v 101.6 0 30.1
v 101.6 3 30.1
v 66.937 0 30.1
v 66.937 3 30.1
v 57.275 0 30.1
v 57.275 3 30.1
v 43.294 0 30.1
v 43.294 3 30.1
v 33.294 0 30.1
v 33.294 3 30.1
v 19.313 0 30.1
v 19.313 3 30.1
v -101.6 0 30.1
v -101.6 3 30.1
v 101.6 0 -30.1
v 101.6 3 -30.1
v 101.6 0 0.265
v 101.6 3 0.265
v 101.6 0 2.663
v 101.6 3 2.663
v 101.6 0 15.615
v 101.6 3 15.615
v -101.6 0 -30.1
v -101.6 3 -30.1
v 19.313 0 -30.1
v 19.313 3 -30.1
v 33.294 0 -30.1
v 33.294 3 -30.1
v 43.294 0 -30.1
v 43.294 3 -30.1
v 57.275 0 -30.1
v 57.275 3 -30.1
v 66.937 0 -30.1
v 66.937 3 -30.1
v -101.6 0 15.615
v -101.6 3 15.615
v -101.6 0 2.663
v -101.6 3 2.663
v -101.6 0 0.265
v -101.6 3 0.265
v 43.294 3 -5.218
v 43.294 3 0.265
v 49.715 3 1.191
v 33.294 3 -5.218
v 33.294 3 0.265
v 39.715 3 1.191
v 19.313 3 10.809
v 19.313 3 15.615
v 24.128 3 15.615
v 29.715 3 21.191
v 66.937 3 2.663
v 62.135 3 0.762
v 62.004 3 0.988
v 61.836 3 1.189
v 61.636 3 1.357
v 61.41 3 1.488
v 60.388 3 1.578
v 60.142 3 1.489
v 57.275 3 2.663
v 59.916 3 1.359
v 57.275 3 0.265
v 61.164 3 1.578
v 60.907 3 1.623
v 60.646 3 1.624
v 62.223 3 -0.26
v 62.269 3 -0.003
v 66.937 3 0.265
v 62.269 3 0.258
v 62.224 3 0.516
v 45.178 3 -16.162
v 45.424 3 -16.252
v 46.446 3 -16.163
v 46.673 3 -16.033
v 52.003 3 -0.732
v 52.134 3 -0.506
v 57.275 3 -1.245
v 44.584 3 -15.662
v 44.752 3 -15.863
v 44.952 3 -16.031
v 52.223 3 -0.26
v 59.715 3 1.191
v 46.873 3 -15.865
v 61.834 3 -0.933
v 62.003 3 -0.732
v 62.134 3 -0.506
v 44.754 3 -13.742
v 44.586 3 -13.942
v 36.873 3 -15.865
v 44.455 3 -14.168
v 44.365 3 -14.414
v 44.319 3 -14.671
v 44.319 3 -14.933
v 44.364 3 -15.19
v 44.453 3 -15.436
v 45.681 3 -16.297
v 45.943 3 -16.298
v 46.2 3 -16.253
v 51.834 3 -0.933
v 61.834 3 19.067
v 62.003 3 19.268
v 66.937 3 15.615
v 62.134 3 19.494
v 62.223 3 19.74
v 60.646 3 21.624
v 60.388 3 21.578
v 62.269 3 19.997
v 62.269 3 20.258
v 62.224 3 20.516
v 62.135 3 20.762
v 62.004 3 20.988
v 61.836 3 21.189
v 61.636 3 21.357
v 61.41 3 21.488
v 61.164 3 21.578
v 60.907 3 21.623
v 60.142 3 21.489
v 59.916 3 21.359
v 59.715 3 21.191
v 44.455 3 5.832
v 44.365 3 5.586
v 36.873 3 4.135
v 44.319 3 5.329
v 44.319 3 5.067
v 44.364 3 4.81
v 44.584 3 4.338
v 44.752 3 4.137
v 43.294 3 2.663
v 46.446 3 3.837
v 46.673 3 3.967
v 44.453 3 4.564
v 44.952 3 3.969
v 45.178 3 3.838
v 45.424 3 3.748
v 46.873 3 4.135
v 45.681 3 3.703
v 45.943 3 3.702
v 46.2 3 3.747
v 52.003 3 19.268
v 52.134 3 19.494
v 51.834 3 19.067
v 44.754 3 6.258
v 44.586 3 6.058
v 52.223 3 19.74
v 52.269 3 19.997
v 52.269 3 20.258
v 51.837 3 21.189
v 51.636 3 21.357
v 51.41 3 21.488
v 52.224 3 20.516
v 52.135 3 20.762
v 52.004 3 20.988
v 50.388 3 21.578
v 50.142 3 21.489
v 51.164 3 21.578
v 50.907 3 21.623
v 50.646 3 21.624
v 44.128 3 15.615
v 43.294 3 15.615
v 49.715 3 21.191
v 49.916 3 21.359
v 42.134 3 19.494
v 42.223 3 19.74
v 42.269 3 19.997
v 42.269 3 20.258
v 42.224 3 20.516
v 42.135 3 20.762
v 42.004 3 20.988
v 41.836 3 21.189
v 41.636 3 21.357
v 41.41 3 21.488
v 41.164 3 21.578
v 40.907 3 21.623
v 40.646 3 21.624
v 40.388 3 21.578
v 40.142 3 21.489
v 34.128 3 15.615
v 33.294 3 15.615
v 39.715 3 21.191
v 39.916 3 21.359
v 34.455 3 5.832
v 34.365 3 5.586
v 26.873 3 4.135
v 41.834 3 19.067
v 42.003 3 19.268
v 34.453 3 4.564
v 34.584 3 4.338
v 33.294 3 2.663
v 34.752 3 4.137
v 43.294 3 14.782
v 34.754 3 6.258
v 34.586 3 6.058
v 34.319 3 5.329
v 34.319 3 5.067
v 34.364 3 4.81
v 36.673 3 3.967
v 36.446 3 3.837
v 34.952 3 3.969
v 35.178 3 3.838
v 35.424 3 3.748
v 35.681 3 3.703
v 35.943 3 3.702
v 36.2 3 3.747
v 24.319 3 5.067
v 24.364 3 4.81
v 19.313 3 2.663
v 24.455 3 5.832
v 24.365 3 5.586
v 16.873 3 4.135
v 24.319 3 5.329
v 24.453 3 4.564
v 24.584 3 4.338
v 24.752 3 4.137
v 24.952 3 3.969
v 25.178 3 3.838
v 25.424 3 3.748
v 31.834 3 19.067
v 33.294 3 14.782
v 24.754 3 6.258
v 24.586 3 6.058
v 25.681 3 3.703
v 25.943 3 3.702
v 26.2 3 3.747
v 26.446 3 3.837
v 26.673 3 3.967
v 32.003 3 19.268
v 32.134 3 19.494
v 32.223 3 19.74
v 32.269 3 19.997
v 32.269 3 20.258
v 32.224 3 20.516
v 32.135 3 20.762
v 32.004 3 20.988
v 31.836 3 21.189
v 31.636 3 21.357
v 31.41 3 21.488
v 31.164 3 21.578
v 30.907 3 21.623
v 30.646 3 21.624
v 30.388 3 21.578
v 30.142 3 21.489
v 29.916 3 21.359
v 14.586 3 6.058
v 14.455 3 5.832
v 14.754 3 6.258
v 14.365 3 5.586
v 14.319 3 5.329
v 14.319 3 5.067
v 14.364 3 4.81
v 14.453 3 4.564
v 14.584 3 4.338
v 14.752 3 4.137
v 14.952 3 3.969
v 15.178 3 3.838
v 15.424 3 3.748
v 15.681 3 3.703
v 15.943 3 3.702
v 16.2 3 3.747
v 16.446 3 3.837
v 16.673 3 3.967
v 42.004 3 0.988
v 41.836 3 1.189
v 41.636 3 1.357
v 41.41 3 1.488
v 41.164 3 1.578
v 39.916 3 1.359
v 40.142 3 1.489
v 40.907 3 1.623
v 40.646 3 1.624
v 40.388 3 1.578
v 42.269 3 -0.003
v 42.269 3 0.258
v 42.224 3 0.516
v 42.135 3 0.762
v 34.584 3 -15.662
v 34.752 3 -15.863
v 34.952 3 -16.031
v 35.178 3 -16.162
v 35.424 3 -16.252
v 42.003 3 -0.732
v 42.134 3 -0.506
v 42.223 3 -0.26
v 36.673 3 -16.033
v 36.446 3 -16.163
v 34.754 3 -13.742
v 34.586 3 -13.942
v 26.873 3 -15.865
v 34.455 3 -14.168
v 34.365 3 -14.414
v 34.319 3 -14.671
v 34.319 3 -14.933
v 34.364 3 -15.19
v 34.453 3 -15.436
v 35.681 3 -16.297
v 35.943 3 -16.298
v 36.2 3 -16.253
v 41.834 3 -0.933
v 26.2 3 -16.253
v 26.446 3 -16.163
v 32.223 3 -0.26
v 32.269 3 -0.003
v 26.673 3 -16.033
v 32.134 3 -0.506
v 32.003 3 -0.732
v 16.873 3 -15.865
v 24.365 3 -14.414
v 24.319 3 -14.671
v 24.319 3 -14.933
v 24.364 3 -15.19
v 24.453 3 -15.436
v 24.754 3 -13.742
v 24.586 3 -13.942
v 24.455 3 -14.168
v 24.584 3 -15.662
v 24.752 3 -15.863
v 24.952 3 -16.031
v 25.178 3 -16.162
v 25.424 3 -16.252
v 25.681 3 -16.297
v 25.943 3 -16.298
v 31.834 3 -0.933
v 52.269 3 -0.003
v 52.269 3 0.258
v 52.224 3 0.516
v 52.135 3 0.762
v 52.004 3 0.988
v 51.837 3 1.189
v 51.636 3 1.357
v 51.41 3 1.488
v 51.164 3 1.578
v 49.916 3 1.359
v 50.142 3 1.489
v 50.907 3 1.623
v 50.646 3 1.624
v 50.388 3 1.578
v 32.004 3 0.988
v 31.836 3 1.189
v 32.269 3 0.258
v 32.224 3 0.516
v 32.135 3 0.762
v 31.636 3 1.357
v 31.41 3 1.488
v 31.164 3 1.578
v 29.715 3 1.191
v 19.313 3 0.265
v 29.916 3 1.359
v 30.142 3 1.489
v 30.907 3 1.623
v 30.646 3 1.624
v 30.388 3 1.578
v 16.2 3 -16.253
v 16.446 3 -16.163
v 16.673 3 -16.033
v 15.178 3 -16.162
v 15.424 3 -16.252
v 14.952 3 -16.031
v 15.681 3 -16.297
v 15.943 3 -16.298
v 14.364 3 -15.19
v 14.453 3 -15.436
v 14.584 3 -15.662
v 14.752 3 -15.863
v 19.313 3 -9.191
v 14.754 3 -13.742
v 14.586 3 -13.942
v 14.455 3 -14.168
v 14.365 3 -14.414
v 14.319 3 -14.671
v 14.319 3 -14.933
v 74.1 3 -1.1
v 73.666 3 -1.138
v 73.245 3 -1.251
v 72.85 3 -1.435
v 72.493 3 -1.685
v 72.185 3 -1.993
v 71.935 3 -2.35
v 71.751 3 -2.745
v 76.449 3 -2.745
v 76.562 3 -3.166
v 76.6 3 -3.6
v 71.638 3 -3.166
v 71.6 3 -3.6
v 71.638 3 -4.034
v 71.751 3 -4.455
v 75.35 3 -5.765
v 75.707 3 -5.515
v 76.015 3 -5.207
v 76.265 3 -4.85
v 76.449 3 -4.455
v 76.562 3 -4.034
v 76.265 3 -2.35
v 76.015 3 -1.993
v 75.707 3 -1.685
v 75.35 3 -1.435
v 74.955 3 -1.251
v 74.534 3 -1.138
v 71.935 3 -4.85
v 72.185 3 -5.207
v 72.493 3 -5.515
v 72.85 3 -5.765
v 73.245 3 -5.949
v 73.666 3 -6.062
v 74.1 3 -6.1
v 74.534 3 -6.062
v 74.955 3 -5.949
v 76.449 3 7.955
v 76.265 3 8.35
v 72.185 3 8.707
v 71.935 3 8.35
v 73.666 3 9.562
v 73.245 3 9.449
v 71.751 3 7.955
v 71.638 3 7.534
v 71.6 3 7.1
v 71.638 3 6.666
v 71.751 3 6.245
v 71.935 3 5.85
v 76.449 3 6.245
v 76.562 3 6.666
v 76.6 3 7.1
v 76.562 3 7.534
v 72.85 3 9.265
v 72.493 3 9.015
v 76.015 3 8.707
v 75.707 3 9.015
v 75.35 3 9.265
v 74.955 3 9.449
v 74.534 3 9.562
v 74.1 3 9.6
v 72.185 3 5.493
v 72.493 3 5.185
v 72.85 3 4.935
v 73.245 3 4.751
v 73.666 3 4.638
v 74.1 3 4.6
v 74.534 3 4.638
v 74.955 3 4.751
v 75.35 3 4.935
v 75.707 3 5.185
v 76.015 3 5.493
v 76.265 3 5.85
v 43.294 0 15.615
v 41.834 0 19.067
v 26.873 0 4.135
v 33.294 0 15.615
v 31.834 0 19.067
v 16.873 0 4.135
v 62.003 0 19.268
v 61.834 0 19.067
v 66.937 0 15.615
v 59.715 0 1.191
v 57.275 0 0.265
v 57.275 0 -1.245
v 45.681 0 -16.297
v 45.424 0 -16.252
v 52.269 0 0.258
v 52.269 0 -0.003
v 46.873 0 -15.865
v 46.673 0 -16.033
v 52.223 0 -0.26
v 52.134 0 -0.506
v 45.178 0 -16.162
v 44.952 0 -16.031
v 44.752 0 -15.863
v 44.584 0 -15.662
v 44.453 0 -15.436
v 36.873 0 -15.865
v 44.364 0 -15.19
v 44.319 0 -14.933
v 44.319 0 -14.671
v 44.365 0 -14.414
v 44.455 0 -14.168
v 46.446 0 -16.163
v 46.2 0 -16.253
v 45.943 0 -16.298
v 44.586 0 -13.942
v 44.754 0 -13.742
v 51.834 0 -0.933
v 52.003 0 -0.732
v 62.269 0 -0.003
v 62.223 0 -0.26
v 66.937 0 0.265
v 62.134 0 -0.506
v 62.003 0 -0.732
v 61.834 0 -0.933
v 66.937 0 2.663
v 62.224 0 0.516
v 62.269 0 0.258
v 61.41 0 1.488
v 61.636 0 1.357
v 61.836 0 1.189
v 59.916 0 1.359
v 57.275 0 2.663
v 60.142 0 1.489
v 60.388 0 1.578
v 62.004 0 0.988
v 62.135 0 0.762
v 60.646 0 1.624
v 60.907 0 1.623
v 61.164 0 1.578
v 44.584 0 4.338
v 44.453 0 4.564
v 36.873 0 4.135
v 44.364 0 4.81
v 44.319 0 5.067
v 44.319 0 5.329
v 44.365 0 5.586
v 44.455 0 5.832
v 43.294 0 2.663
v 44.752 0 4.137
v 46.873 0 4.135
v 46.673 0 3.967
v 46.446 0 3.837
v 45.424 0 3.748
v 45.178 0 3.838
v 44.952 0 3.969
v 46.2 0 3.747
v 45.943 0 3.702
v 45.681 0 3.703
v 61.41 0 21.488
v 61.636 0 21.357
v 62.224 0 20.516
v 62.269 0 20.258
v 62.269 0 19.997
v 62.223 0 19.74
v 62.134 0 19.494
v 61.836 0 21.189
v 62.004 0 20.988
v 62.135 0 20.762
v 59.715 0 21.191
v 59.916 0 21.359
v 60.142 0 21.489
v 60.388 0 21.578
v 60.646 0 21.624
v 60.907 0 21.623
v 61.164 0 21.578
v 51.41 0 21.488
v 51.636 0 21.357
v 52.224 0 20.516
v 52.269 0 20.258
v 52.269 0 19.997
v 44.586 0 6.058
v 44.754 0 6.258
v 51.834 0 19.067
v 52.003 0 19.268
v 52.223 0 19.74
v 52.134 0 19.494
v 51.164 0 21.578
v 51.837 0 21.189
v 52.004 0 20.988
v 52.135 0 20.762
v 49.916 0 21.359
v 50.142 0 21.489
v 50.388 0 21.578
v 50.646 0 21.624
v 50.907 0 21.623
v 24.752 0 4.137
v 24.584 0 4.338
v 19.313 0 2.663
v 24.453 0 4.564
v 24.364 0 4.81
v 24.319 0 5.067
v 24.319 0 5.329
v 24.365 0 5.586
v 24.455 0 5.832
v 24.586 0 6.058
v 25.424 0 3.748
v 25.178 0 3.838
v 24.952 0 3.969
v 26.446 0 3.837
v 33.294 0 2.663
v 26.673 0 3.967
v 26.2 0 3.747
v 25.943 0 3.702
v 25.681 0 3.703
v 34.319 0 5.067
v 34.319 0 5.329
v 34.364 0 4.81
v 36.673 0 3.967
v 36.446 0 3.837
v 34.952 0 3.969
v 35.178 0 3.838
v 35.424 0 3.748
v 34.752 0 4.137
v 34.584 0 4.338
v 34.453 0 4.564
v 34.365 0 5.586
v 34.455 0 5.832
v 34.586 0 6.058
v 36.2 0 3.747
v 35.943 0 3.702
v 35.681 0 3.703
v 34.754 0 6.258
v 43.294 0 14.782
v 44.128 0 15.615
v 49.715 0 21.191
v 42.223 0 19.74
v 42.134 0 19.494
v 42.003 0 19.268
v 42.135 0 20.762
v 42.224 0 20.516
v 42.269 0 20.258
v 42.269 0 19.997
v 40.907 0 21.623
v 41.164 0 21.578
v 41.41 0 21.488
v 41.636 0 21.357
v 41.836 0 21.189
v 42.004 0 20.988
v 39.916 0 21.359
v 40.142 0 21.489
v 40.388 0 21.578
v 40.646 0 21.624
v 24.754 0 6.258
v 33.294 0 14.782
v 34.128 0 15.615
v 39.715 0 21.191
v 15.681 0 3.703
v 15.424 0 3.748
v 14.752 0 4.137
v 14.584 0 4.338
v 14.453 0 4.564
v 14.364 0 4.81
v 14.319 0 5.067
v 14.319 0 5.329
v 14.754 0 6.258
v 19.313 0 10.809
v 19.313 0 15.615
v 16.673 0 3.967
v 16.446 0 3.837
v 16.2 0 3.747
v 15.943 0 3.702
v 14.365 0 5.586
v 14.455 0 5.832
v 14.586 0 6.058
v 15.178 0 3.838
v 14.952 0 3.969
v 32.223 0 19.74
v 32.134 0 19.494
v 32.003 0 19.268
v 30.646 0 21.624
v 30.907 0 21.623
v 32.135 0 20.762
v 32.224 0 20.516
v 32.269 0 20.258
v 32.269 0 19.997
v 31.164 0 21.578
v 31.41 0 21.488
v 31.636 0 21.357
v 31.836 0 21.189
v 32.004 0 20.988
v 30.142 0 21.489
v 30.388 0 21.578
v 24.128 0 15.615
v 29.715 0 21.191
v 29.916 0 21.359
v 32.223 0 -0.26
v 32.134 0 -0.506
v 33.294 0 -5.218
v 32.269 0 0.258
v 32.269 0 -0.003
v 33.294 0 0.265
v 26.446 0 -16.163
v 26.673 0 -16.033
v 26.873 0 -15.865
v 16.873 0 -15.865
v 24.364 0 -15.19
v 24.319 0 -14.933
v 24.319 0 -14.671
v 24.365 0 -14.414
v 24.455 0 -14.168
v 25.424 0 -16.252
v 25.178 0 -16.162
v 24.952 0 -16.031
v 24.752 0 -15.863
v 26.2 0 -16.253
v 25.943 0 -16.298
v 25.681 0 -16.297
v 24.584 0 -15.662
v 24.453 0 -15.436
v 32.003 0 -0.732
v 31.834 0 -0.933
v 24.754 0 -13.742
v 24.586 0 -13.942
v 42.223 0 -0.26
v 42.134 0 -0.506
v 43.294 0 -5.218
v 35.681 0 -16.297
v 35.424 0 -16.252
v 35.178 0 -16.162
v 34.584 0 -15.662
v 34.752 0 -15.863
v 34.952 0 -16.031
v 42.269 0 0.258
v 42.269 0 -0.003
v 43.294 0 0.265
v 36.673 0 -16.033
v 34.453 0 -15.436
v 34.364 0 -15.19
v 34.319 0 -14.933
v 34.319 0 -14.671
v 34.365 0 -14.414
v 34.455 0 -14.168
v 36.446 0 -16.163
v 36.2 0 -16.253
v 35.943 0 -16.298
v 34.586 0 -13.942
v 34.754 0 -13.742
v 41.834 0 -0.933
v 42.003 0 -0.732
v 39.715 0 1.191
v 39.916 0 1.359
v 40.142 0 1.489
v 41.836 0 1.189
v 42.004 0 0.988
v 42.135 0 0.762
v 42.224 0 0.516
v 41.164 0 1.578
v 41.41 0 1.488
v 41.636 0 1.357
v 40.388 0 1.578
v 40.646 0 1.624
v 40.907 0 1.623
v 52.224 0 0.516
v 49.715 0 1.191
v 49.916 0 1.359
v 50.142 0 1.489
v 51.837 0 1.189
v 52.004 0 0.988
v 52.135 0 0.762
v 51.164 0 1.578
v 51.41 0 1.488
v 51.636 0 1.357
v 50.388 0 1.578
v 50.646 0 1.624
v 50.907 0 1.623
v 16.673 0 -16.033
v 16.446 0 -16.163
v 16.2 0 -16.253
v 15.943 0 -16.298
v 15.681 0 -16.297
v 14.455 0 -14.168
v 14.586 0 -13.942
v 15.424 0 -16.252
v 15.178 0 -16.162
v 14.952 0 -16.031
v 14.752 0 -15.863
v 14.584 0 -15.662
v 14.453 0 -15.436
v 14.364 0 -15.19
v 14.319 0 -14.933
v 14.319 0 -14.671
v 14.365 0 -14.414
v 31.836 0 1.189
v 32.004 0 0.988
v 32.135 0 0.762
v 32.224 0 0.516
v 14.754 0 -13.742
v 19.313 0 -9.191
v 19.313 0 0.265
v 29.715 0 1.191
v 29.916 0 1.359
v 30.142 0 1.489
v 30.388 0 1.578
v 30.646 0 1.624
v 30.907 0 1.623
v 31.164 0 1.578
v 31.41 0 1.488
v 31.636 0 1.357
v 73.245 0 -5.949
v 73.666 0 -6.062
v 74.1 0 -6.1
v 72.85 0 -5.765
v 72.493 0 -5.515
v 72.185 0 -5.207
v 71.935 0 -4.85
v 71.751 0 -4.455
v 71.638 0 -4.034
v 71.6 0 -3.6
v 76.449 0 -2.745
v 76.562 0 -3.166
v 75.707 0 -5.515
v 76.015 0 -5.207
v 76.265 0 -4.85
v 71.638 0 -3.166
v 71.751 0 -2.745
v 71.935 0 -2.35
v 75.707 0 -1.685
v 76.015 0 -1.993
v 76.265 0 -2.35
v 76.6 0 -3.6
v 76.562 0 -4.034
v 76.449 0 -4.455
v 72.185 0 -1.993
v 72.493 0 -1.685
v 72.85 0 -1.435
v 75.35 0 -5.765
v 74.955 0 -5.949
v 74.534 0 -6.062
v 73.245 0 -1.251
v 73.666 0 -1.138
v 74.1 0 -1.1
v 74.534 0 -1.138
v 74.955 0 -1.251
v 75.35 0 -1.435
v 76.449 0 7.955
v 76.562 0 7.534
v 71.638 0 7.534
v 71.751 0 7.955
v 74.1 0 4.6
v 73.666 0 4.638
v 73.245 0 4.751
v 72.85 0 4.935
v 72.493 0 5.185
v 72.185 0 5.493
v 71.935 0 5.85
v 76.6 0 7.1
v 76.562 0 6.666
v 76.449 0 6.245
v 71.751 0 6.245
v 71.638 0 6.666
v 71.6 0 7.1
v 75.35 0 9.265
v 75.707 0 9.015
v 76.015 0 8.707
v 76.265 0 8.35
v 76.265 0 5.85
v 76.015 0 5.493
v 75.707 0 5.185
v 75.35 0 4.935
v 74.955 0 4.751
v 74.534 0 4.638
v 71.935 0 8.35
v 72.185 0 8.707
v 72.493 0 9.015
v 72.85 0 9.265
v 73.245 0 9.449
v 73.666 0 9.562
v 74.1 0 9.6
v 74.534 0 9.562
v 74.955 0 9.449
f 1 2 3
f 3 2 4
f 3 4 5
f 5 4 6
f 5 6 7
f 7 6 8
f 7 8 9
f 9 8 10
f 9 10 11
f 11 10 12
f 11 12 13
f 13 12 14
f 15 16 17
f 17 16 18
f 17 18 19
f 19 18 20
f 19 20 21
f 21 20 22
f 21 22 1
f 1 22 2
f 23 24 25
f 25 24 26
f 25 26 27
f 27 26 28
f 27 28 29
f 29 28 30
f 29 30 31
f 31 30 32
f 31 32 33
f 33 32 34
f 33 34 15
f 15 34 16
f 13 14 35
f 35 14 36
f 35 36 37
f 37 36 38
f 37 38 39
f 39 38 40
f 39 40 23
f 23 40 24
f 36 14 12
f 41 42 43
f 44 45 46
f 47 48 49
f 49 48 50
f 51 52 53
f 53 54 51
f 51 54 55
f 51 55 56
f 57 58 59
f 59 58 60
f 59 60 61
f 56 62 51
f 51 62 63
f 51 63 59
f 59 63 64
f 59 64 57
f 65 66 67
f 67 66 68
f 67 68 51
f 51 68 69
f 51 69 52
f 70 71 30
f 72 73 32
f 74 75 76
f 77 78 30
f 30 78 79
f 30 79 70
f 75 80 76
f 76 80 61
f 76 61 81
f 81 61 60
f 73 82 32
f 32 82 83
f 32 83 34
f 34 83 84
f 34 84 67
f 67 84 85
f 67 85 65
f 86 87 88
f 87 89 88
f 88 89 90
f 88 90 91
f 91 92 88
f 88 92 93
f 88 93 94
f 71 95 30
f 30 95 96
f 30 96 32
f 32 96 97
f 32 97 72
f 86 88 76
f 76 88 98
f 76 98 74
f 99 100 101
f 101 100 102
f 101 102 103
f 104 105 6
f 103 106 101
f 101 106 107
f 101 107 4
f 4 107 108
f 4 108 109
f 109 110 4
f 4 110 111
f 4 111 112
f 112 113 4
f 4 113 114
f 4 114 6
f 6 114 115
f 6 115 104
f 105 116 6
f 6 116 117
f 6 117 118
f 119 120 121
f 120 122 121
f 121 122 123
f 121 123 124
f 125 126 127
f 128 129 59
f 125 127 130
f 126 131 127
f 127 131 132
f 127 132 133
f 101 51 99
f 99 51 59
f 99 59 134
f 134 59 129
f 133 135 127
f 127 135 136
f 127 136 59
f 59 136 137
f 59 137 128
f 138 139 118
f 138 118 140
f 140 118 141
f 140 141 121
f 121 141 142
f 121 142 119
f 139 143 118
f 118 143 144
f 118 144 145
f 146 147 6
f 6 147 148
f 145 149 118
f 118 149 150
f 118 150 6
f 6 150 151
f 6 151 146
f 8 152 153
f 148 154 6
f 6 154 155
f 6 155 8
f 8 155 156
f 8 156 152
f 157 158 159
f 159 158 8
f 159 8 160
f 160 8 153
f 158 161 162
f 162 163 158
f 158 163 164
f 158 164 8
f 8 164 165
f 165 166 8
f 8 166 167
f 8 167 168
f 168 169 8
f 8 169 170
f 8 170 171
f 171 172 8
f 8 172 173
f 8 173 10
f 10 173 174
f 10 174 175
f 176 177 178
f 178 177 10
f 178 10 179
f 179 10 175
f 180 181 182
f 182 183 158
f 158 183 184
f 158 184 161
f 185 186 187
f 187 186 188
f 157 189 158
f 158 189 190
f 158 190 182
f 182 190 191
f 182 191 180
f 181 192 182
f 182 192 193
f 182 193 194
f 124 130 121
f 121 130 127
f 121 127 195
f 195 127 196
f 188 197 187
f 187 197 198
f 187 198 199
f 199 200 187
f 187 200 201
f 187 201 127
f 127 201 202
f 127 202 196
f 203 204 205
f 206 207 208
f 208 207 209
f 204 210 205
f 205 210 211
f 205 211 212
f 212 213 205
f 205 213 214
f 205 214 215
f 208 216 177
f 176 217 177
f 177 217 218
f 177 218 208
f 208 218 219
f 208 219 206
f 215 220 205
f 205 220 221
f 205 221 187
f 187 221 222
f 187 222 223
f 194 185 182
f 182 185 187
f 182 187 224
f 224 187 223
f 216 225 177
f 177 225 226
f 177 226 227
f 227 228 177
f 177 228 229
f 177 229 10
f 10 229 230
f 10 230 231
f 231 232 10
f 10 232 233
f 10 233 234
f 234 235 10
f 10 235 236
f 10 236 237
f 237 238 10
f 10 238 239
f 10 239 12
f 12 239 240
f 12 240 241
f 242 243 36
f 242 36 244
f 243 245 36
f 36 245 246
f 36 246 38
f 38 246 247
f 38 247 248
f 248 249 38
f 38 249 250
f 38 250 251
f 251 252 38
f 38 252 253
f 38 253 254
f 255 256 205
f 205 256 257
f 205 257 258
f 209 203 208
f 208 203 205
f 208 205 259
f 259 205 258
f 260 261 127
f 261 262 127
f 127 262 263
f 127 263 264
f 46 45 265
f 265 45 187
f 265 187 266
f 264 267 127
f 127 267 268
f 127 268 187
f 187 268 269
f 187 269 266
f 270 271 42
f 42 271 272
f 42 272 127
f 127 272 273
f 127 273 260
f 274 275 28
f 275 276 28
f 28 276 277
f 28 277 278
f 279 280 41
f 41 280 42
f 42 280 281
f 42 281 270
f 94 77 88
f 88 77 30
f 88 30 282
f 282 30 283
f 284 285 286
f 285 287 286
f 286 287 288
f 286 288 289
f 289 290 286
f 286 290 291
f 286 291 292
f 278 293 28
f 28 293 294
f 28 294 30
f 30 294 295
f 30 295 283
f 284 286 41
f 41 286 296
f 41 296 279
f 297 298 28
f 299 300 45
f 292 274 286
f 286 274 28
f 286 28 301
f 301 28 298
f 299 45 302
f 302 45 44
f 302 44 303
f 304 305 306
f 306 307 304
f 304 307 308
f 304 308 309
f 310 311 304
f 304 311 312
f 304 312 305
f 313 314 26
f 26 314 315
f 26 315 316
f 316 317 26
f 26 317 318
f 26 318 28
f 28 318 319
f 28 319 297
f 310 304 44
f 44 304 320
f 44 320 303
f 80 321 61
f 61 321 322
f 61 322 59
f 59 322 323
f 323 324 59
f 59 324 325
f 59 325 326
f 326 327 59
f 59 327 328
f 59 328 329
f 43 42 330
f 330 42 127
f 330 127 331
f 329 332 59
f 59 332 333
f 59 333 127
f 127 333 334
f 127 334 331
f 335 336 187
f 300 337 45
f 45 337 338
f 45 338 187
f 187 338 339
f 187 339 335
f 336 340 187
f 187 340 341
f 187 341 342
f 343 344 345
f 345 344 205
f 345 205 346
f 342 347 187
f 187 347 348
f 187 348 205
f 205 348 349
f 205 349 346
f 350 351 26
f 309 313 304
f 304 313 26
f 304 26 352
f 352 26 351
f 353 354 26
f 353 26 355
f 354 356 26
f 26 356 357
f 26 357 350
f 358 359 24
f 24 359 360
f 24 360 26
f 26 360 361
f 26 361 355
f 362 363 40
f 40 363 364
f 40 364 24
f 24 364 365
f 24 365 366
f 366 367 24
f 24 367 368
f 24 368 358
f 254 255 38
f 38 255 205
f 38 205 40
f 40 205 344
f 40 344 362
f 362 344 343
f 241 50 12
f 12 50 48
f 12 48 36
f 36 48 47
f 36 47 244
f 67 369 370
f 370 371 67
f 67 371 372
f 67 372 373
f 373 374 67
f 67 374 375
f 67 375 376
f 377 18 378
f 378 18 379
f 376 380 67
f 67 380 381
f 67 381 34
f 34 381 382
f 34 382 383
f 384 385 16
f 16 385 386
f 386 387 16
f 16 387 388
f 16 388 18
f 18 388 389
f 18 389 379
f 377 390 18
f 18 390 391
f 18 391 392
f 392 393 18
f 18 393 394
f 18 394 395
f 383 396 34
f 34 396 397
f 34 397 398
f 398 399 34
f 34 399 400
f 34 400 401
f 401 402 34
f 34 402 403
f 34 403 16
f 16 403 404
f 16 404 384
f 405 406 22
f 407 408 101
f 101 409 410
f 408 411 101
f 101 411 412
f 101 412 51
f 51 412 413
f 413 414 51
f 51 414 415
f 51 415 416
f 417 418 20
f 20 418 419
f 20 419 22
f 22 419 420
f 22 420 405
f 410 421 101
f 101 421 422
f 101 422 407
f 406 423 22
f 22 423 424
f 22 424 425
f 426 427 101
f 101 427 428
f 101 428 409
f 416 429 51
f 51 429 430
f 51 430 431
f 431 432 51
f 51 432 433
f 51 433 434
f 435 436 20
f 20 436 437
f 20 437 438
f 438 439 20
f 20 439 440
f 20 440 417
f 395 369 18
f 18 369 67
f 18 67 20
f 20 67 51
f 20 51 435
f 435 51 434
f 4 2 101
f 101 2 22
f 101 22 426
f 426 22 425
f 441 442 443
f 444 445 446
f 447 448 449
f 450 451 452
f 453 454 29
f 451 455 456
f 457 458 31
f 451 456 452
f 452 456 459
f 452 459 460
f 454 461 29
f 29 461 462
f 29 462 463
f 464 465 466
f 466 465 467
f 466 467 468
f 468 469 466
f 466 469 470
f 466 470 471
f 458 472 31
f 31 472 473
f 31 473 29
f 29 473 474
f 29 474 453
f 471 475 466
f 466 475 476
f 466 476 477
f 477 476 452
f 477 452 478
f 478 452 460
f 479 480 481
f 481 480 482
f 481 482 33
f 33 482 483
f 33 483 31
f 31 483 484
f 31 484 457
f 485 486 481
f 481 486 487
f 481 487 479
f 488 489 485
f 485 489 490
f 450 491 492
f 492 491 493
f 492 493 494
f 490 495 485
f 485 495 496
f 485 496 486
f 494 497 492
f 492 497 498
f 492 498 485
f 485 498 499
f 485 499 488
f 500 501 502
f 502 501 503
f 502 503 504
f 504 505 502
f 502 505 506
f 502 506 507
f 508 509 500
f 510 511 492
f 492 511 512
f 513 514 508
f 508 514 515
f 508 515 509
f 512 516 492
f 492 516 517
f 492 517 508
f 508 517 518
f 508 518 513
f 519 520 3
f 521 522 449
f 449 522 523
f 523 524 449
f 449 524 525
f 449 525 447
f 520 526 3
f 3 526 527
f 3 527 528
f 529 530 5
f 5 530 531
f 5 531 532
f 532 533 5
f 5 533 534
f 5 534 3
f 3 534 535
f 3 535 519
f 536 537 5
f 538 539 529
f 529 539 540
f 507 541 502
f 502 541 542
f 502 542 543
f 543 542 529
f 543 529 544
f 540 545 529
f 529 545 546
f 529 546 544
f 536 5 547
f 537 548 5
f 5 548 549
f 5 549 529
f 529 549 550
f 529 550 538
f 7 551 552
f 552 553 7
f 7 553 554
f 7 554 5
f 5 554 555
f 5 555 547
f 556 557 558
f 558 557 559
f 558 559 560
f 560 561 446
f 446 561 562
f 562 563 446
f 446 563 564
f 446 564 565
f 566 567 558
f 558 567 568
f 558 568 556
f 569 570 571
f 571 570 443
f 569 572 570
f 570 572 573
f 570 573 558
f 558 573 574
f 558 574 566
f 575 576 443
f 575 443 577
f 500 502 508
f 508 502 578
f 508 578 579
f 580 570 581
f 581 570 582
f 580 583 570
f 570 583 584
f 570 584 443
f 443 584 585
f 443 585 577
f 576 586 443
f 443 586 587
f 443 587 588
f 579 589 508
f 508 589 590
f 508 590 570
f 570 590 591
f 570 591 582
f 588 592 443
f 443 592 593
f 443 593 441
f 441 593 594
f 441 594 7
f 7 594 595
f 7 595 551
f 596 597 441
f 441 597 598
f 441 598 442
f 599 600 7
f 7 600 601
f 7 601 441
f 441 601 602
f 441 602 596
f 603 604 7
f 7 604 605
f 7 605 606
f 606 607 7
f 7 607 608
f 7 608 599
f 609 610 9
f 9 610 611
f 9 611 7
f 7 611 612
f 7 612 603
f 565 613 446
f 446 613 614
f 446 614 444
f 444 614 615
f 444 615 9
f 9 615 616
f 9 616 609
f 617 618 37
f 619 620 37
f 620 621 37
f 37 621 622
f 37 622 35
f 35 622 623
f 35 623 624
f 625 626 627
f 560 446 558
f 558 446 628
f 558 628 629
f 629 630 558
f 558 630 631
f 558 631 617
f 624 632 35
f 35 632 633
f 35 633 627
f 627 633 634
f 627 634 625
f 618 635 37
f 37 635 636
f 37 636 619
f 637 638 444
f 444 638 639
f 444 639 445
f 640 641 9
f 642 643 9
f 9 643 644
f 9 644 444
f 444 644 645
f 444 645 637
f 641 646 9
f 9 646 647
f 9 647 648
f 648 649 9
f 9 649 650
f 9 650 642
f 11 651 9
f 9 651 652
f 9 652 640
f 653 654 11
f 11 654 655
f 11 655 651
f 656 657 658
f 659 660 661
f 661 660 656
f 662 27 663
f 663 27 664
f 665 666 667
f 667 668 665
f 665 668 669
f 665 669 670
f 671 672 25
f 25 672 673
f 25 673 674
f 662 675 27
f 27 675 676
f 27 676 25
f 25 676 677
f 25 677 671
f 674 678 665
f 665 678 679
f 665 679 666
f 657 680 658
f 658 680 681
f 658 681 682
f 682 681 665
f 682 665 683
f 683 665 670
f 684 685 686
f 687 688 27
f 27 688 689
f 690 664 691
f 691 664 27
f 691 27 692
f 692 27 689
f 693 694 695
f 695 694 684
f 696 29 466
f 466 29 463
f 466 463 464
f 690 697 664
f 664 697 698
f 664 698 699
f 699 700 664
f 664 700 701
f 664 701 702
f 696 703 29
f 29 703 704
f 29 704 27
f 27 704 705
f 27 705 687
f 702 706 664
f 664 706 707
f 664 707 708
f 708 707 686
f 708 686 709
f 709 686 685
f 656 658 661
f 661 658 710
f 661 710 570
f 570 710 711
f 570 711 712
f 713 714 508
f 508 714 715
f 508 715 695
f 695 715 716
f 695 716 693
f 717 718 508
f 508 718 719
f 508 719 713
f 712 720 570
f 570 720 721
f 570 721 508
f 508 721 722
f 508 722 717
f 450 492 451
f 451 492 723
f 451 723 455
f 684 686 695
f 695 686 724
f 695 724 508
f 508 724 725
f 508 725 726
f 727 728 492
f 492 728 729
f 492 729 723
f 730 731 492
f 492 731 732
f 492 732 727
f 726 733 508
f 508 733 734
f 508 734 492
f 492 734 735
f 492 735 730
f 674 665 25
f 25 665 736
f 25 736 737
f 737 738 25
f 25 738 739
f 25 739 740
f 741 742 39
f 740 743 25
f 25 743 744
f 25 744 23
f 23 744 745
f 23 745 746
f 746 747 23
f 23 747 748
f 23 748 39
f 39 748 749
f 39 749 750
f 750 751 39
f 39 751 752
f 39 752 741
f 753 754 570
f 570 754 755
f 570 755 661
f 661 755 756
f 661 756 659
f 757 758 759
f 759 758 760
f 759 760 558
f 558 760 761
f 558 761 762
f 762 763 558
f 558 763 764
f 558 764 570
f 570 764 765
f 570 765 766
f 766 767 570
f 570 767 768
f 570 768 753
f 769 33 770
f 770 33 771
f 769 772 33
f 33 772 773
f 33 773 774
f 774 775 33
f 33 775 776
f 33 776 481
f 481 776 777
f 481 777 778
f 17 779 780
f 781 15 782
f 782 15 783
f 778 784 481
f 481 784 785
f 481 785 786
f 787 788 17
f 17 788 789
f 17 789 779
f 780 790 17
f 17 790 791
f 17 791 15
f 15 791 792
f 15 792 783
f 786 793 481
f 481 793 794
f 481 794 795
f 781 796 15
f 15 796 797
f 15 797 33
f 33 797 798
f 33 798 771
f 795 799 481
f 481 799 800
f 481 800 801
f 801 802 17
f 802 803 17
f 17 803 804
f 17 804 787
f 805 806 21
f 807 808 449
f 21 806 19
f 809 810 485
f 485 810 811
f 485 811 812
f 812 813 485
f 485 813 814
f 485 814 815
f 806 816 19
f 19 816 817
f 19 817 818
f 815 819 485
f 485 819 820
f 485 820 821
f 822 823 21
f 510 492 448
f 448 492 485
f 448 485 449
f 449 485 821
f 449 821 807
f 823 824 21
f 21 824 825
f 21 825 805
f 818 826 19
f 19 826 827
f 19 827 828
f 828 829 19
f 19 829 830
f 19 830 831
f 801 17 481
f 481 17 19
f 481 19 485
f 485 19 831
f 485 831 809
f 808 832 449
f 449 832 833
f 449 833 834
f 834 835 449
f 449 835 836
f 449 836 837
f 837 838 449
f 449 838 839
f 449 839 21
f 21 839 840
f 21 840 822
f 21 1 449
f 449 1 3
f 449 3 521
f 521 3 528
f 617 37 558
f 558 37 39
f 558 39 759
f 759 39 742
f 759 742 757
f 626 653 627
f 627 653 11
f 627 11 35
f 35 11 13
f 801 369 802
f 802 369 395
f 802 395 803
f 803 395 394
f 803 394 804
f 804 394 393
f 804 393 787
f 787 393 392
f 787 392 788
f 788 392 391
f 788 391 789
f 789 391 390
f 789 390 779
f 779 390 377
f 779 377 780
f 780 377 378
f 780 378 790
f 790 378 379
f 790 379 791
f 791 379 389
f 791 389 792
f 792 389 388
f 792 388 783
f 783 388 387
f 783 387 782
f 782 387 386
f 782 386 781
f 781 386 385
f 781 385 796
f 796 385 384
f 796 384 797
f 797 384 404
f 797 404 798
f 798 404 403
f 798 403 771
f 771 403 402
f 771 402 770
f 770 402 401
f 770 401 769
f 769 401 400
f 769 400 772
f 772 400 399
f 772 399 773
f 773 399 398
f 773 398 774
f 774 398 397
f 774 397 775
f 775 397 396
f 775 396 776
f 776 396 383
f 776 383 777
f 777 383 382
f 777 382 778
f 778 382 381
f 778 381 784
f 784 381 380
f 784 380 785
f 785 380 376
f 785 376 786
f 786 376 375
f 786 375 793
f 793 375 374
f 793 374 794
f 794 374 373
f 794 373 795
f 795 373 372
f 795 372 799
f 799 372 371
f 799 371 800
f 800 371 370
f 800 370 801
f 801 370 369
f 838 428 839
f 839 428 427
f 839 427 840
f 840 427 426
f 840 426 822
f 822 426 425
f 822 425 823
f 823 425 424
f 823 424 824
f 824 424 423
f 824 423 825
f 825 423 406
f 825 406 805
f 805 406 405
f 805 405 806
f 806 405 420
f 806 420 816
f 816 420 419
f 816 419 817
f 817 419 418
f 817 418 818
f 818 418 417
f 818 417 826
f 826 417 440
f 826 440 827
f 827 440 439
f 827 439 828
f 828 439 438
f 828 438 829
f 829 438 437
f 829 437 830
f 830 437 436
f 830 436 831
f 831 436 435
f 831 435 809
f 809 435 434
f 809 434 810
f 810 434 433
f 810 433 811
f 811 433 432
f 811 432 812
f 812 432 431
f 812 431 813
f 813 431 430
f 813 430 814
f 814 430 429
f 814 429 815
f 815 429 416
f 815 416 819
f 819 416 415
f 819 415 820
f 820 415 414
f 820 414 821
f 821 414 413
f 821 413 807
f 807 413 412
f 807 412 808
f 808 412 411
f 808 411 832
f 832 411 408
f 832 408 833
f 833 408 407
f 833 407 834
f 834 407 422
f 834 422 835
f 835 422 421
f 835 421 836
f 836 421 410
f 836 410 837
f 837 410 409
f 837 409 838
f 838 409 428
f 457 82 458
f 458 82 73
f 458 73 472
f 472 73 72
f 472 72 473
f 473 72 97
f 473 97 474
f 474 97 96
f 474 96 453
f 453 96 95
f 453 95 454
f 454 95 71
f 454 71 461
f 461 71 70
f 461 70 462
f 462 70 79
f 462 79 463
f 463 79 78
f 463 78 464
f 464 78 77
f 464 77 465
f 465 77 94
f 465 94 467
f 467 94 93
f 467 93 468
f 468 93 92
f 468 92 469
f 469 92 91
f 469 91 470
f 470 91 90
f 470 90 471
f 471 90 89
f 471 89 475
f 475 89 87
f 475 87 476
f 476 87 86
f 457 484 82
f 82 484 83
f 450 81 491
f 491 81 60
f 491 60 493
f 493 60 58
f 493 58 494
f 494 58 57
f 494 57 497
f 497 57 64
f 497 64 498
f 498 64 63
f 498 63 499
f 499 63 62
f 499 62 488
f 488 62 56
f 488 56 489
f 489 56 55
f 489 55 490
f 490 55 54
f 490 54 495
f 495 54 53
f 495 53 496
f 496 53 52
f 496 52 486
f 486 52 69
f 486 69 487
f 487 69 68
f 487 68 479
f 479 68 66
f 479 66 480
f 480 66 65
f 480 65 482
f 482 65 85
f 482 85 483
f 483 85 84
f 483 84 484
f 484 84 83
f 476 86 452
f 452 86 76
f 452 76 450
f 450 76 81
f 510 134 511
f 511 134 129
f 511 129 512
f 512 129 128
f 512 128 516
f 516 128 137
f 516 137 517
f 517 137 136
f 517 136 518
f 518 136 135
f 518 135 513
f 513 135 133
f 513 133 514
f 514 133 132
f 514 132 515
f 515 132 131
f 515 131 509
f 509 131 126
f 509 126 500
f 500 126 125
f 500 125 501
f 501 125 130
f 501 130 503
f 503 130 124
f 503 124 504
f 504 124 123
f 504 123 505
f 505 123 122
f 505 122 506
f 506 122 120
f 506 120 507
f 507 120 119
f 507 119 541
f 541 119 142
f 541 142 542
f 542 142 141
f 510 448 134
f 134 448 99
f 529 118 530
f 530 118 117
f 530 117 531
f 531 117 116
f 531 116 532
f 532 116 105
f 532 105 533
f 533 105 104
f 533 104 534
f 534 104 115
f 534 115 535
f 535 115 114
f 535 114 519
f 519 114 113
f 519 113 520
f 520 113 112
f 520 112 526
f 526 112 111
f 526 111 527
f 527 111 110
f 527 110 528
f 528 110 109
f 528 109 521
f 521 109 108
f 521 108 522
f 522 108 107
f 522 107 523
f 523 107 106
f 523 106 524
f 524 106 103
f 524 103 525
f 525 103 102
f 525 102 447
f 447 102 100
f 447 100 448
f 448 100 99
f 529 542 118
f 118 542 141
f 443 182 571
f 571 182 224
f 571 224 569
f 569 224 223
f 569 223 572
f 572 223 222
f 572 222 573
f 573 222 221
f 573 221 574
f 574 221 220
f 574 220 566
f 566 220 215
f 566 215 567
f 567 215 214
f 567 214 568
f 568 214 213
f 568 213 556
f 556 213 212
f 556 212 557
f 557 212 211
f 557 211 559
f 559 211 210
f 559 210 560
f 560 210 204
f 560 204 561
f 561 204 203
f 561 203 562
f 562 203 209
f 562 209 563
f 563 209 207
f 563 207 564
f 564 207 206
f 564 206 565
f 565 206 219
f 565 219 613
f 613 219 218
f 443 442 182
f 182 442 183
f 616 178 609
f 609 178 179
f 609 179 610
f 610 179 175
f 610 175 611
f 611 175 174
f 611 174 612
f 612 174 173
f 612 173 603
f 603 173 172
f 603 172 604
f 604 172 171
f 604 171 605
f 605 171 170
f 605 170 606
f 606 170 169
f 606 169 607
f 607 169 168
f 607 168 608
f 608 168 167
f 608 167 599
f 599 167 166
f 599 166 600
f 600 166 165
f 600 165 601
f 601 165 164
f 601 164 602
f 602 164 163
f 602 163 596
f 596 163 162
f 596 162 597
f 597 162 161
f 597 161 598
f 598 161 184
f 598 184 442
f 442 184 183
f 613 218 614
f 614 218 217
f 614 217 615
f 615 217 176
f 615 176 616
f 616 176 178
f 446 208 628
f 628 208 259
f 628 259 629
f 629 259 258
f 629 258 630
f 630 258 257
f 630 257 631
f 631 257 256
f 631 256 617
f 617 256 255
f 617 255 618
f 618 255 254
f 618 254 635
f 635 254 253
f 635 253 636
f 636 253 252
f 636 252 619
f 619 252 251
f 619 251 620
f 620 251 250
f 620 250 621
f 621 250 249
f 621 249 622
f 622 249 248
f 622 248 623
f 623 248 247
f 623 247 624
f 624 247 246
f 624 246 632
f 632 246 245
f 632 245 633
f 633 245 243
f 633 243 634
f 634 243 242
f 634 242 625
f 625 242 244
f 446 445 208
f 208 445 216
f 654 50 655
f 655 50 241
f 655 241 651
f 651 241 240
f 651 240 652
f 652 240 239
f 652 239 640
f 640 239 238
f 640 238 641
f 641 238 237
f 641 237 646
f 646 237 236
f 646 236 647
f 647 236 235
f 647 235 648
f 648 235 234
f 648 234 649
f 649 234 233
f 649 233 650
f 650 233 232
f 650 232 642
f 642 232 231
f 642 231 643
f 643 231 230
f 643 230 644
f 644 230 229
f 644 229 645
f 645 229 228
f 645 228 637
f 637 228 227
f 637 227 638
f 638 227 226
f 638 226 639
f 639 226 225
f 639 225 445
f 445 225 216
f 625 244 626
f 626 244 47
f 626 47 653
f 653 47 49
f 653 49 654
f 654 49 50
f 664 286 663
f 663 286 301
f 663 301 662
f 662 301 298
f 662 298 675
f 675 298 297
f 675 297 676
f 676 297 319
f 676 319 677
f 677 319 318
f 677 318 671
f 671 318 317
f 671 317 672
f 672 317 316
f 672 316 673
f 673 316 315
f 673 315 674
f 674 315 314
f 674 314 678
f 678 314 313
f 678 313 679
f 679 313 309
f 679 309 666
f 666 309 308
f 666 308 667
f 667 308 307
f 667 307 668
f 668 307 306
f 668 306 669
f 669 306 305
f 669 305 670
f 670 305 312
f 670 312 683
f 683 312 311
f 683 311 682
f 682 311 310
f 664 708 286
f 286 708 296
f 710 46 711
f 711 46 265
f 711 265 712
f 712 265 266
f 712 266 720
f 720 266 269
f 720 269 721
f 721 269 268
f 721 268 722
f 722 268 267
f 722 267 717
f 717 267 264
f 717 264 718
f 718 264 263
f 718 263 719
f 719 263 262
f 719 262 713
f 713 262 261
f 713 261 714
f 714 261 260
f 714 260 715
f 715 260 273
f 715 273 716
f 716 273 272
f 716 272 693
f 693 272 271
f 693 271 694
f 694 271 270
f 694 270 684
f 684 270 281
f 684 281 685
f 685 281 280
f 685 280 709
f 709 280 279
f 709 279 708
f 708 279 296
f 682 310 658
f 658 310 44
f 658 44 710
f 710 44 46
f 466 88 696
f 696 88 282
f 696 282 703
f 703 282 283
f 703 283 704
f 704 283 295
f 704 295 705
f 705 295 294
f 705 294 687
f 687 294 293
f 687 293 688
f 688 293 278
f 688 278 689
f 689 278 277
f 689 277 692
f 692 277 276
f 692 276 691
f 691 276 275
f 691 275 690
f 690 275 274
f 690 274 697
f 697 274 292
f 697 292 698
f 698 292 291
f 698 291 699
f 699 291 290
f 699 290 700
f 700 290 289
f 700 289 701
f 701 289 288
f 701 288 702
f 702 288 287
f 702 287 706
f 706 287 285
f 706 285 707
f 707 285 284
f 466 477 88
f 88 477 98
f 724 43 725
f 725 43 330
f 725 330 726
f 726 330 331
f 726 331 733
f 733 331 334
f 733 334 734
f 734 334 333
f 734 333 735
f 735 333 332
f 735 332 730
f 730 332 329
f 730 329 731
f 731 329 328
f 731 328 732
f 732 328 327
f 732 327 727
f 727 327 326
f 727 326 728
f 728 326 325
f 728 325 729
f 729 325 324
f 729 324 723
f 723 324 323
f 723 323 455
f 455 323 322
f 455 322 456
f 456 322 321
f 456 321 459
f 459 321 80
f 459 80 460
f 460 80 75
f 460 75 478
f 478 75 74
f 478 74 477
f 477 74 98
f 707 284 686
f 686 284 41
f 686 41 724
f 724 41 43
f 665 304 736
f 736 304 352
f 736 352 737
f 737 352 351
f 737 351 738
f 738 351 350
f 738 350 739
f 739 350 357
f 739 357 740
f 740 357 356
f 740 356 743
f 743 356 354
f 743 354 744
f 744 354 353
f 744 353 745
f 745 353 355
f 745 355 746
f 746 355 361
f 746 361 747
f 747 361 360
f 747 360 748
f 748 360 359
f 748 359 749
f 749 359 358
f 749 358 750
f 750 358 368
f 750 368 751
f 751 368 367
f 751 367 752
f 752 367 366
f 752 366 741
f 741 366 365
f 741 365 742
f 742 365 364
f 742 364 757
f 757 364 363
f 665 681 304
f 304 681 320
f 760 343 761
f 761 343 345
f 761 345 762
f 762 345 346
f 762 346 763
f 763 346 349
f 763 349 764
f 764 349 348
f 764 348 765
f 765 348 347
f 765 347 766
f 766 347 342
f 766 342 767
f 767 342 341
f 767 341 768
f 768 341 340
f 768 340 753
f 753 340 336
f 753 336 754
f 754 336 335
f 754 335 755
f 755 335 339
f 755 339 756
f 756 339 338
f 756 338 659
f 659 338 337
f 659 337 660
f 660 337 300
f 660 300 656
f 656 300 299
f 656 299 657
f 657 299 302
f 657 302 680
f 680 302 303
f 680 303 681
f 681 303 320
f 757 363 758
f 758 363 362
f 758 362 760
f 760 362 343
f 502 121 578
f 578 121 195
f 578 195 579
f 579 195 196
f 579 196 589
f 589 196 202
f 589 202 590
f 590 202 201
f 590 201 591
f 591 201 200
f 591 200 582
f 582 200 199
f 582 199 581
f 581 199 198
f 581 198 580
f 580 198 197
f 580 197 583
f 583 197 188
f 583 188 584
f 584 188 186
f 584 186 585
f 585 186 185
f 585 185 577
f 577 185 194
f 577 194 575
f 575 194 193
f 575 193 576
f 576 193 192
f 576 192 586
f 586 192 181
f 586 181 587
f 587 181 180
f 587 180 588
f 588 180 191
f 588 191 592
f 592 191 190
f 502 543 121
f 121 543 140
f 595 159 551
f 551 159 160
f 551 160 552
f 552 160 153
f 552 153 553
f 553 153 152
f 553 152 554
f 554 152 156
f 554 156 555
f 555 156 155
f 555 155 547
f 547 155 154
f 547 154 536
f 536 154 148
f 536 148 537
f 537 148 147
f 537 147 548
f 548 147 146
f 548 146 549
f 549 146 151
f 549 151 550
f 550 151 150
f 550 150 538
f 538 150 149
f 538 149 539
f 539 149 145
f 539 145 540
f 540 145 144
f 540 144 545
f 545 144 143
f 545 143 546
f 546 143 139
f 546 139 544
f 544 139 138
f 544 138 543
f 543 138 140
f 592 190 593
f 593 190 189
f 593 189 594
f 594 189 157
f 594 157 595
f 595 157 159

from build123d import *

# Parameters (mm, degrees)
SKETCH1_W           = 203.2
SKETCH1_H           = 60.2
BOSS_EXTRUDE1_DEPTH = 3
SKETCH5_R           = 2.5
CUT_EXTRUDE1_DEPTH  = 3
SKETCH7_R           = 2.5
CUT_EXTRUDE2_DEPTH  = 3
CUT_EXTRUDE3_DEPTH  = 3


with BuildPart() as part:
    # Sketch1 → Boss-Extrude1 (new body)
    with BuildSketch(Plane(origin=(0, 0, 0), x_dir=(1, 0, 0), z_dir=(0, 1, 0))):
        Rectangle(SKETCH1_W, SKETCH1_H)
    extrude(amount=BOSS_EXTRUDE1_DEPTH)

    # Sketch5 → Cut-Extrude1 (cut)
    with BuildSketch(Plane(origin=(0, 3, 0), x_dir=(1, 0, 0), z_dir=(0, 1, 0))):
        with Locations(Location((74.1, 3.6, 0), (0, 0, 270))):
            Circle(SKETCH5_R)
    extrude(amount=-CUT_EXTRUDE1_DEPTH, mode=Mode.SUBTRACT)

    # Sketch7 → Cut-Extrude2 (cut)
    with BuildSketch(Plane(origin=(0, 3, 0), x_dir=(1, 0, 0), z_dir=(0, 1, 0))):
        with Locations(Location((74.1, -7.1, 0), (0, 0, 270))):
            Circle(SKETCH7_R)
    extrude(amount=-CUT_EXTRUDE2_DEPTH, mode=Mode.SUBTRACT)

    # Sketch8 → Cut-Extrude3 (cut)
    with BuildSketch(Plane(origin=(0, 3, 0), x_dir=(1, 0, 0), z_dir=(0, 1, 0))):
        with BuildLine():
            Line((46.873111379, 15.864980996), (61.83445164, 0.932505799))
            ThreePointArc((61.83445164, 0.932505799), (61.836499957, -1.188813555), (59.715180603, -1.190861873))
            Line((59.715180603, -1.190861873), (44.753840342, 13.741613324))
            ThreePointArc((44.753840342, 13.741613324), (44.751792025, 15.862932678), (46.873111379, 15.864980996))
        make_face()
        with BuildLine():
            Line((36.873111379, 15.864980996), (51.83445164, 0.932505799))
            ThreePointArc((51.83445164, 0.932505799), (51.836499957, -1.188813555), (49.715180603, -1.190861873))
            Line((49.715180603, -1.190861873), (34.753840342, 13.741613324))
            ThreePointArc((34.753840342, 13.741613324), (34.751792025, 15.862932678), (36.873111379, 15.864980996))
        make_face()
        with BuildLine():
            Line((26.873111379, 15.864980996), (41.83445164, 0.932505799))
            ThreePointArc((41.83445164, 0.932505799), (41.836499957, -1.188813555), (39.715180603, -1.190861873))
            Line((39.715180603, -1.190861873), (24.753840342, 13.741613324))
            ThreePointArc((24.753840342, 13.741613324), (24.751792025, 15.862932678), (26.873111379, 15.864980996))
        make_face()
        with BuildLine():
            Line((16.873111379, 15.864980996), (31.83445164, 0.932505799))
            ThreePointArc((31.83445164, 0.932505799), (31.836499957, -1.188813555), (29.715180603, -1.190861873))
            Line((29.715180603, -1.190861873), (14.753840342, 13.741613324))
            ThreePointArc((14.753840342, 13.741613324), (14.751792025, 15.862932678), (16.873111379, 15.864980996))
        make_face()
        with BuildLine():
            Line((36.873111379, -4.135019004), (51.83445164, -19.067494201))
            ThreePointArc((51.83445164, -19.067494201), (51.836499957, -21.188813555), (49.715180603, -21.190861873))
            Line((49.715180603, -21.190861873), (34.753840342, -6.258386676))
            ThreePointArc((34.753840342, -6.258386676), (34.751792025, -4.137067322), (36.873111379, -4.135019004))
        make_face()
        with BuildLine():
            Line((26.873111379, -4.135019004), (41.83445164, -19.067494201))
            ThreePointArc((41.83445164, -19.067494201), (41.836499957, -21.188813555), (39.715180603, -21.190861873))
            Line((39.715180603, -21.190861873), (24.753840342, -6.258386676))
            ThreePointArc((24.753840342, -6.258386676), (24.751792025, -4.137067322), (26.873111379, -4.135019004))
        make_face()
        with BuildLine():
            Line((16.873111379, -4.135019004), (31.83445164, -19.067494201))
            ThreePointArc((31.83445164, -19.067494201), (31.836499957, -21.188813555), (29.715180603, -21.190861873))
            Line((29.715180603, -21.190861873), (14.753840342, -6.258386676))
            ThreePointArc((14.753840342, -6.258386676), (14.751792025, -4.137067322), (16.873111379, -4.135019004))
        make_face()
        with BuildLine():
            Line((46.873111379, -4.135019004), (61.83445164, -19.067494201))
            ThreePointArc((61.83445164, -19.067494201), (61.836499957, -21.188813555), (59.715180603, -21.190861873))
            Line((59.715180603, -21.190861873), (44.753840342, -6.258386676))
            ThreePointArc((44.753840342, -6.258386676), (44.751792025, -4.137067322), (46.873111379, -4.135019004))
        make_face()
    extrude(amount=-CUT_EXTRUDE3_DEPTH, mode=Mode.SUBTRACT)


solid = part.part
